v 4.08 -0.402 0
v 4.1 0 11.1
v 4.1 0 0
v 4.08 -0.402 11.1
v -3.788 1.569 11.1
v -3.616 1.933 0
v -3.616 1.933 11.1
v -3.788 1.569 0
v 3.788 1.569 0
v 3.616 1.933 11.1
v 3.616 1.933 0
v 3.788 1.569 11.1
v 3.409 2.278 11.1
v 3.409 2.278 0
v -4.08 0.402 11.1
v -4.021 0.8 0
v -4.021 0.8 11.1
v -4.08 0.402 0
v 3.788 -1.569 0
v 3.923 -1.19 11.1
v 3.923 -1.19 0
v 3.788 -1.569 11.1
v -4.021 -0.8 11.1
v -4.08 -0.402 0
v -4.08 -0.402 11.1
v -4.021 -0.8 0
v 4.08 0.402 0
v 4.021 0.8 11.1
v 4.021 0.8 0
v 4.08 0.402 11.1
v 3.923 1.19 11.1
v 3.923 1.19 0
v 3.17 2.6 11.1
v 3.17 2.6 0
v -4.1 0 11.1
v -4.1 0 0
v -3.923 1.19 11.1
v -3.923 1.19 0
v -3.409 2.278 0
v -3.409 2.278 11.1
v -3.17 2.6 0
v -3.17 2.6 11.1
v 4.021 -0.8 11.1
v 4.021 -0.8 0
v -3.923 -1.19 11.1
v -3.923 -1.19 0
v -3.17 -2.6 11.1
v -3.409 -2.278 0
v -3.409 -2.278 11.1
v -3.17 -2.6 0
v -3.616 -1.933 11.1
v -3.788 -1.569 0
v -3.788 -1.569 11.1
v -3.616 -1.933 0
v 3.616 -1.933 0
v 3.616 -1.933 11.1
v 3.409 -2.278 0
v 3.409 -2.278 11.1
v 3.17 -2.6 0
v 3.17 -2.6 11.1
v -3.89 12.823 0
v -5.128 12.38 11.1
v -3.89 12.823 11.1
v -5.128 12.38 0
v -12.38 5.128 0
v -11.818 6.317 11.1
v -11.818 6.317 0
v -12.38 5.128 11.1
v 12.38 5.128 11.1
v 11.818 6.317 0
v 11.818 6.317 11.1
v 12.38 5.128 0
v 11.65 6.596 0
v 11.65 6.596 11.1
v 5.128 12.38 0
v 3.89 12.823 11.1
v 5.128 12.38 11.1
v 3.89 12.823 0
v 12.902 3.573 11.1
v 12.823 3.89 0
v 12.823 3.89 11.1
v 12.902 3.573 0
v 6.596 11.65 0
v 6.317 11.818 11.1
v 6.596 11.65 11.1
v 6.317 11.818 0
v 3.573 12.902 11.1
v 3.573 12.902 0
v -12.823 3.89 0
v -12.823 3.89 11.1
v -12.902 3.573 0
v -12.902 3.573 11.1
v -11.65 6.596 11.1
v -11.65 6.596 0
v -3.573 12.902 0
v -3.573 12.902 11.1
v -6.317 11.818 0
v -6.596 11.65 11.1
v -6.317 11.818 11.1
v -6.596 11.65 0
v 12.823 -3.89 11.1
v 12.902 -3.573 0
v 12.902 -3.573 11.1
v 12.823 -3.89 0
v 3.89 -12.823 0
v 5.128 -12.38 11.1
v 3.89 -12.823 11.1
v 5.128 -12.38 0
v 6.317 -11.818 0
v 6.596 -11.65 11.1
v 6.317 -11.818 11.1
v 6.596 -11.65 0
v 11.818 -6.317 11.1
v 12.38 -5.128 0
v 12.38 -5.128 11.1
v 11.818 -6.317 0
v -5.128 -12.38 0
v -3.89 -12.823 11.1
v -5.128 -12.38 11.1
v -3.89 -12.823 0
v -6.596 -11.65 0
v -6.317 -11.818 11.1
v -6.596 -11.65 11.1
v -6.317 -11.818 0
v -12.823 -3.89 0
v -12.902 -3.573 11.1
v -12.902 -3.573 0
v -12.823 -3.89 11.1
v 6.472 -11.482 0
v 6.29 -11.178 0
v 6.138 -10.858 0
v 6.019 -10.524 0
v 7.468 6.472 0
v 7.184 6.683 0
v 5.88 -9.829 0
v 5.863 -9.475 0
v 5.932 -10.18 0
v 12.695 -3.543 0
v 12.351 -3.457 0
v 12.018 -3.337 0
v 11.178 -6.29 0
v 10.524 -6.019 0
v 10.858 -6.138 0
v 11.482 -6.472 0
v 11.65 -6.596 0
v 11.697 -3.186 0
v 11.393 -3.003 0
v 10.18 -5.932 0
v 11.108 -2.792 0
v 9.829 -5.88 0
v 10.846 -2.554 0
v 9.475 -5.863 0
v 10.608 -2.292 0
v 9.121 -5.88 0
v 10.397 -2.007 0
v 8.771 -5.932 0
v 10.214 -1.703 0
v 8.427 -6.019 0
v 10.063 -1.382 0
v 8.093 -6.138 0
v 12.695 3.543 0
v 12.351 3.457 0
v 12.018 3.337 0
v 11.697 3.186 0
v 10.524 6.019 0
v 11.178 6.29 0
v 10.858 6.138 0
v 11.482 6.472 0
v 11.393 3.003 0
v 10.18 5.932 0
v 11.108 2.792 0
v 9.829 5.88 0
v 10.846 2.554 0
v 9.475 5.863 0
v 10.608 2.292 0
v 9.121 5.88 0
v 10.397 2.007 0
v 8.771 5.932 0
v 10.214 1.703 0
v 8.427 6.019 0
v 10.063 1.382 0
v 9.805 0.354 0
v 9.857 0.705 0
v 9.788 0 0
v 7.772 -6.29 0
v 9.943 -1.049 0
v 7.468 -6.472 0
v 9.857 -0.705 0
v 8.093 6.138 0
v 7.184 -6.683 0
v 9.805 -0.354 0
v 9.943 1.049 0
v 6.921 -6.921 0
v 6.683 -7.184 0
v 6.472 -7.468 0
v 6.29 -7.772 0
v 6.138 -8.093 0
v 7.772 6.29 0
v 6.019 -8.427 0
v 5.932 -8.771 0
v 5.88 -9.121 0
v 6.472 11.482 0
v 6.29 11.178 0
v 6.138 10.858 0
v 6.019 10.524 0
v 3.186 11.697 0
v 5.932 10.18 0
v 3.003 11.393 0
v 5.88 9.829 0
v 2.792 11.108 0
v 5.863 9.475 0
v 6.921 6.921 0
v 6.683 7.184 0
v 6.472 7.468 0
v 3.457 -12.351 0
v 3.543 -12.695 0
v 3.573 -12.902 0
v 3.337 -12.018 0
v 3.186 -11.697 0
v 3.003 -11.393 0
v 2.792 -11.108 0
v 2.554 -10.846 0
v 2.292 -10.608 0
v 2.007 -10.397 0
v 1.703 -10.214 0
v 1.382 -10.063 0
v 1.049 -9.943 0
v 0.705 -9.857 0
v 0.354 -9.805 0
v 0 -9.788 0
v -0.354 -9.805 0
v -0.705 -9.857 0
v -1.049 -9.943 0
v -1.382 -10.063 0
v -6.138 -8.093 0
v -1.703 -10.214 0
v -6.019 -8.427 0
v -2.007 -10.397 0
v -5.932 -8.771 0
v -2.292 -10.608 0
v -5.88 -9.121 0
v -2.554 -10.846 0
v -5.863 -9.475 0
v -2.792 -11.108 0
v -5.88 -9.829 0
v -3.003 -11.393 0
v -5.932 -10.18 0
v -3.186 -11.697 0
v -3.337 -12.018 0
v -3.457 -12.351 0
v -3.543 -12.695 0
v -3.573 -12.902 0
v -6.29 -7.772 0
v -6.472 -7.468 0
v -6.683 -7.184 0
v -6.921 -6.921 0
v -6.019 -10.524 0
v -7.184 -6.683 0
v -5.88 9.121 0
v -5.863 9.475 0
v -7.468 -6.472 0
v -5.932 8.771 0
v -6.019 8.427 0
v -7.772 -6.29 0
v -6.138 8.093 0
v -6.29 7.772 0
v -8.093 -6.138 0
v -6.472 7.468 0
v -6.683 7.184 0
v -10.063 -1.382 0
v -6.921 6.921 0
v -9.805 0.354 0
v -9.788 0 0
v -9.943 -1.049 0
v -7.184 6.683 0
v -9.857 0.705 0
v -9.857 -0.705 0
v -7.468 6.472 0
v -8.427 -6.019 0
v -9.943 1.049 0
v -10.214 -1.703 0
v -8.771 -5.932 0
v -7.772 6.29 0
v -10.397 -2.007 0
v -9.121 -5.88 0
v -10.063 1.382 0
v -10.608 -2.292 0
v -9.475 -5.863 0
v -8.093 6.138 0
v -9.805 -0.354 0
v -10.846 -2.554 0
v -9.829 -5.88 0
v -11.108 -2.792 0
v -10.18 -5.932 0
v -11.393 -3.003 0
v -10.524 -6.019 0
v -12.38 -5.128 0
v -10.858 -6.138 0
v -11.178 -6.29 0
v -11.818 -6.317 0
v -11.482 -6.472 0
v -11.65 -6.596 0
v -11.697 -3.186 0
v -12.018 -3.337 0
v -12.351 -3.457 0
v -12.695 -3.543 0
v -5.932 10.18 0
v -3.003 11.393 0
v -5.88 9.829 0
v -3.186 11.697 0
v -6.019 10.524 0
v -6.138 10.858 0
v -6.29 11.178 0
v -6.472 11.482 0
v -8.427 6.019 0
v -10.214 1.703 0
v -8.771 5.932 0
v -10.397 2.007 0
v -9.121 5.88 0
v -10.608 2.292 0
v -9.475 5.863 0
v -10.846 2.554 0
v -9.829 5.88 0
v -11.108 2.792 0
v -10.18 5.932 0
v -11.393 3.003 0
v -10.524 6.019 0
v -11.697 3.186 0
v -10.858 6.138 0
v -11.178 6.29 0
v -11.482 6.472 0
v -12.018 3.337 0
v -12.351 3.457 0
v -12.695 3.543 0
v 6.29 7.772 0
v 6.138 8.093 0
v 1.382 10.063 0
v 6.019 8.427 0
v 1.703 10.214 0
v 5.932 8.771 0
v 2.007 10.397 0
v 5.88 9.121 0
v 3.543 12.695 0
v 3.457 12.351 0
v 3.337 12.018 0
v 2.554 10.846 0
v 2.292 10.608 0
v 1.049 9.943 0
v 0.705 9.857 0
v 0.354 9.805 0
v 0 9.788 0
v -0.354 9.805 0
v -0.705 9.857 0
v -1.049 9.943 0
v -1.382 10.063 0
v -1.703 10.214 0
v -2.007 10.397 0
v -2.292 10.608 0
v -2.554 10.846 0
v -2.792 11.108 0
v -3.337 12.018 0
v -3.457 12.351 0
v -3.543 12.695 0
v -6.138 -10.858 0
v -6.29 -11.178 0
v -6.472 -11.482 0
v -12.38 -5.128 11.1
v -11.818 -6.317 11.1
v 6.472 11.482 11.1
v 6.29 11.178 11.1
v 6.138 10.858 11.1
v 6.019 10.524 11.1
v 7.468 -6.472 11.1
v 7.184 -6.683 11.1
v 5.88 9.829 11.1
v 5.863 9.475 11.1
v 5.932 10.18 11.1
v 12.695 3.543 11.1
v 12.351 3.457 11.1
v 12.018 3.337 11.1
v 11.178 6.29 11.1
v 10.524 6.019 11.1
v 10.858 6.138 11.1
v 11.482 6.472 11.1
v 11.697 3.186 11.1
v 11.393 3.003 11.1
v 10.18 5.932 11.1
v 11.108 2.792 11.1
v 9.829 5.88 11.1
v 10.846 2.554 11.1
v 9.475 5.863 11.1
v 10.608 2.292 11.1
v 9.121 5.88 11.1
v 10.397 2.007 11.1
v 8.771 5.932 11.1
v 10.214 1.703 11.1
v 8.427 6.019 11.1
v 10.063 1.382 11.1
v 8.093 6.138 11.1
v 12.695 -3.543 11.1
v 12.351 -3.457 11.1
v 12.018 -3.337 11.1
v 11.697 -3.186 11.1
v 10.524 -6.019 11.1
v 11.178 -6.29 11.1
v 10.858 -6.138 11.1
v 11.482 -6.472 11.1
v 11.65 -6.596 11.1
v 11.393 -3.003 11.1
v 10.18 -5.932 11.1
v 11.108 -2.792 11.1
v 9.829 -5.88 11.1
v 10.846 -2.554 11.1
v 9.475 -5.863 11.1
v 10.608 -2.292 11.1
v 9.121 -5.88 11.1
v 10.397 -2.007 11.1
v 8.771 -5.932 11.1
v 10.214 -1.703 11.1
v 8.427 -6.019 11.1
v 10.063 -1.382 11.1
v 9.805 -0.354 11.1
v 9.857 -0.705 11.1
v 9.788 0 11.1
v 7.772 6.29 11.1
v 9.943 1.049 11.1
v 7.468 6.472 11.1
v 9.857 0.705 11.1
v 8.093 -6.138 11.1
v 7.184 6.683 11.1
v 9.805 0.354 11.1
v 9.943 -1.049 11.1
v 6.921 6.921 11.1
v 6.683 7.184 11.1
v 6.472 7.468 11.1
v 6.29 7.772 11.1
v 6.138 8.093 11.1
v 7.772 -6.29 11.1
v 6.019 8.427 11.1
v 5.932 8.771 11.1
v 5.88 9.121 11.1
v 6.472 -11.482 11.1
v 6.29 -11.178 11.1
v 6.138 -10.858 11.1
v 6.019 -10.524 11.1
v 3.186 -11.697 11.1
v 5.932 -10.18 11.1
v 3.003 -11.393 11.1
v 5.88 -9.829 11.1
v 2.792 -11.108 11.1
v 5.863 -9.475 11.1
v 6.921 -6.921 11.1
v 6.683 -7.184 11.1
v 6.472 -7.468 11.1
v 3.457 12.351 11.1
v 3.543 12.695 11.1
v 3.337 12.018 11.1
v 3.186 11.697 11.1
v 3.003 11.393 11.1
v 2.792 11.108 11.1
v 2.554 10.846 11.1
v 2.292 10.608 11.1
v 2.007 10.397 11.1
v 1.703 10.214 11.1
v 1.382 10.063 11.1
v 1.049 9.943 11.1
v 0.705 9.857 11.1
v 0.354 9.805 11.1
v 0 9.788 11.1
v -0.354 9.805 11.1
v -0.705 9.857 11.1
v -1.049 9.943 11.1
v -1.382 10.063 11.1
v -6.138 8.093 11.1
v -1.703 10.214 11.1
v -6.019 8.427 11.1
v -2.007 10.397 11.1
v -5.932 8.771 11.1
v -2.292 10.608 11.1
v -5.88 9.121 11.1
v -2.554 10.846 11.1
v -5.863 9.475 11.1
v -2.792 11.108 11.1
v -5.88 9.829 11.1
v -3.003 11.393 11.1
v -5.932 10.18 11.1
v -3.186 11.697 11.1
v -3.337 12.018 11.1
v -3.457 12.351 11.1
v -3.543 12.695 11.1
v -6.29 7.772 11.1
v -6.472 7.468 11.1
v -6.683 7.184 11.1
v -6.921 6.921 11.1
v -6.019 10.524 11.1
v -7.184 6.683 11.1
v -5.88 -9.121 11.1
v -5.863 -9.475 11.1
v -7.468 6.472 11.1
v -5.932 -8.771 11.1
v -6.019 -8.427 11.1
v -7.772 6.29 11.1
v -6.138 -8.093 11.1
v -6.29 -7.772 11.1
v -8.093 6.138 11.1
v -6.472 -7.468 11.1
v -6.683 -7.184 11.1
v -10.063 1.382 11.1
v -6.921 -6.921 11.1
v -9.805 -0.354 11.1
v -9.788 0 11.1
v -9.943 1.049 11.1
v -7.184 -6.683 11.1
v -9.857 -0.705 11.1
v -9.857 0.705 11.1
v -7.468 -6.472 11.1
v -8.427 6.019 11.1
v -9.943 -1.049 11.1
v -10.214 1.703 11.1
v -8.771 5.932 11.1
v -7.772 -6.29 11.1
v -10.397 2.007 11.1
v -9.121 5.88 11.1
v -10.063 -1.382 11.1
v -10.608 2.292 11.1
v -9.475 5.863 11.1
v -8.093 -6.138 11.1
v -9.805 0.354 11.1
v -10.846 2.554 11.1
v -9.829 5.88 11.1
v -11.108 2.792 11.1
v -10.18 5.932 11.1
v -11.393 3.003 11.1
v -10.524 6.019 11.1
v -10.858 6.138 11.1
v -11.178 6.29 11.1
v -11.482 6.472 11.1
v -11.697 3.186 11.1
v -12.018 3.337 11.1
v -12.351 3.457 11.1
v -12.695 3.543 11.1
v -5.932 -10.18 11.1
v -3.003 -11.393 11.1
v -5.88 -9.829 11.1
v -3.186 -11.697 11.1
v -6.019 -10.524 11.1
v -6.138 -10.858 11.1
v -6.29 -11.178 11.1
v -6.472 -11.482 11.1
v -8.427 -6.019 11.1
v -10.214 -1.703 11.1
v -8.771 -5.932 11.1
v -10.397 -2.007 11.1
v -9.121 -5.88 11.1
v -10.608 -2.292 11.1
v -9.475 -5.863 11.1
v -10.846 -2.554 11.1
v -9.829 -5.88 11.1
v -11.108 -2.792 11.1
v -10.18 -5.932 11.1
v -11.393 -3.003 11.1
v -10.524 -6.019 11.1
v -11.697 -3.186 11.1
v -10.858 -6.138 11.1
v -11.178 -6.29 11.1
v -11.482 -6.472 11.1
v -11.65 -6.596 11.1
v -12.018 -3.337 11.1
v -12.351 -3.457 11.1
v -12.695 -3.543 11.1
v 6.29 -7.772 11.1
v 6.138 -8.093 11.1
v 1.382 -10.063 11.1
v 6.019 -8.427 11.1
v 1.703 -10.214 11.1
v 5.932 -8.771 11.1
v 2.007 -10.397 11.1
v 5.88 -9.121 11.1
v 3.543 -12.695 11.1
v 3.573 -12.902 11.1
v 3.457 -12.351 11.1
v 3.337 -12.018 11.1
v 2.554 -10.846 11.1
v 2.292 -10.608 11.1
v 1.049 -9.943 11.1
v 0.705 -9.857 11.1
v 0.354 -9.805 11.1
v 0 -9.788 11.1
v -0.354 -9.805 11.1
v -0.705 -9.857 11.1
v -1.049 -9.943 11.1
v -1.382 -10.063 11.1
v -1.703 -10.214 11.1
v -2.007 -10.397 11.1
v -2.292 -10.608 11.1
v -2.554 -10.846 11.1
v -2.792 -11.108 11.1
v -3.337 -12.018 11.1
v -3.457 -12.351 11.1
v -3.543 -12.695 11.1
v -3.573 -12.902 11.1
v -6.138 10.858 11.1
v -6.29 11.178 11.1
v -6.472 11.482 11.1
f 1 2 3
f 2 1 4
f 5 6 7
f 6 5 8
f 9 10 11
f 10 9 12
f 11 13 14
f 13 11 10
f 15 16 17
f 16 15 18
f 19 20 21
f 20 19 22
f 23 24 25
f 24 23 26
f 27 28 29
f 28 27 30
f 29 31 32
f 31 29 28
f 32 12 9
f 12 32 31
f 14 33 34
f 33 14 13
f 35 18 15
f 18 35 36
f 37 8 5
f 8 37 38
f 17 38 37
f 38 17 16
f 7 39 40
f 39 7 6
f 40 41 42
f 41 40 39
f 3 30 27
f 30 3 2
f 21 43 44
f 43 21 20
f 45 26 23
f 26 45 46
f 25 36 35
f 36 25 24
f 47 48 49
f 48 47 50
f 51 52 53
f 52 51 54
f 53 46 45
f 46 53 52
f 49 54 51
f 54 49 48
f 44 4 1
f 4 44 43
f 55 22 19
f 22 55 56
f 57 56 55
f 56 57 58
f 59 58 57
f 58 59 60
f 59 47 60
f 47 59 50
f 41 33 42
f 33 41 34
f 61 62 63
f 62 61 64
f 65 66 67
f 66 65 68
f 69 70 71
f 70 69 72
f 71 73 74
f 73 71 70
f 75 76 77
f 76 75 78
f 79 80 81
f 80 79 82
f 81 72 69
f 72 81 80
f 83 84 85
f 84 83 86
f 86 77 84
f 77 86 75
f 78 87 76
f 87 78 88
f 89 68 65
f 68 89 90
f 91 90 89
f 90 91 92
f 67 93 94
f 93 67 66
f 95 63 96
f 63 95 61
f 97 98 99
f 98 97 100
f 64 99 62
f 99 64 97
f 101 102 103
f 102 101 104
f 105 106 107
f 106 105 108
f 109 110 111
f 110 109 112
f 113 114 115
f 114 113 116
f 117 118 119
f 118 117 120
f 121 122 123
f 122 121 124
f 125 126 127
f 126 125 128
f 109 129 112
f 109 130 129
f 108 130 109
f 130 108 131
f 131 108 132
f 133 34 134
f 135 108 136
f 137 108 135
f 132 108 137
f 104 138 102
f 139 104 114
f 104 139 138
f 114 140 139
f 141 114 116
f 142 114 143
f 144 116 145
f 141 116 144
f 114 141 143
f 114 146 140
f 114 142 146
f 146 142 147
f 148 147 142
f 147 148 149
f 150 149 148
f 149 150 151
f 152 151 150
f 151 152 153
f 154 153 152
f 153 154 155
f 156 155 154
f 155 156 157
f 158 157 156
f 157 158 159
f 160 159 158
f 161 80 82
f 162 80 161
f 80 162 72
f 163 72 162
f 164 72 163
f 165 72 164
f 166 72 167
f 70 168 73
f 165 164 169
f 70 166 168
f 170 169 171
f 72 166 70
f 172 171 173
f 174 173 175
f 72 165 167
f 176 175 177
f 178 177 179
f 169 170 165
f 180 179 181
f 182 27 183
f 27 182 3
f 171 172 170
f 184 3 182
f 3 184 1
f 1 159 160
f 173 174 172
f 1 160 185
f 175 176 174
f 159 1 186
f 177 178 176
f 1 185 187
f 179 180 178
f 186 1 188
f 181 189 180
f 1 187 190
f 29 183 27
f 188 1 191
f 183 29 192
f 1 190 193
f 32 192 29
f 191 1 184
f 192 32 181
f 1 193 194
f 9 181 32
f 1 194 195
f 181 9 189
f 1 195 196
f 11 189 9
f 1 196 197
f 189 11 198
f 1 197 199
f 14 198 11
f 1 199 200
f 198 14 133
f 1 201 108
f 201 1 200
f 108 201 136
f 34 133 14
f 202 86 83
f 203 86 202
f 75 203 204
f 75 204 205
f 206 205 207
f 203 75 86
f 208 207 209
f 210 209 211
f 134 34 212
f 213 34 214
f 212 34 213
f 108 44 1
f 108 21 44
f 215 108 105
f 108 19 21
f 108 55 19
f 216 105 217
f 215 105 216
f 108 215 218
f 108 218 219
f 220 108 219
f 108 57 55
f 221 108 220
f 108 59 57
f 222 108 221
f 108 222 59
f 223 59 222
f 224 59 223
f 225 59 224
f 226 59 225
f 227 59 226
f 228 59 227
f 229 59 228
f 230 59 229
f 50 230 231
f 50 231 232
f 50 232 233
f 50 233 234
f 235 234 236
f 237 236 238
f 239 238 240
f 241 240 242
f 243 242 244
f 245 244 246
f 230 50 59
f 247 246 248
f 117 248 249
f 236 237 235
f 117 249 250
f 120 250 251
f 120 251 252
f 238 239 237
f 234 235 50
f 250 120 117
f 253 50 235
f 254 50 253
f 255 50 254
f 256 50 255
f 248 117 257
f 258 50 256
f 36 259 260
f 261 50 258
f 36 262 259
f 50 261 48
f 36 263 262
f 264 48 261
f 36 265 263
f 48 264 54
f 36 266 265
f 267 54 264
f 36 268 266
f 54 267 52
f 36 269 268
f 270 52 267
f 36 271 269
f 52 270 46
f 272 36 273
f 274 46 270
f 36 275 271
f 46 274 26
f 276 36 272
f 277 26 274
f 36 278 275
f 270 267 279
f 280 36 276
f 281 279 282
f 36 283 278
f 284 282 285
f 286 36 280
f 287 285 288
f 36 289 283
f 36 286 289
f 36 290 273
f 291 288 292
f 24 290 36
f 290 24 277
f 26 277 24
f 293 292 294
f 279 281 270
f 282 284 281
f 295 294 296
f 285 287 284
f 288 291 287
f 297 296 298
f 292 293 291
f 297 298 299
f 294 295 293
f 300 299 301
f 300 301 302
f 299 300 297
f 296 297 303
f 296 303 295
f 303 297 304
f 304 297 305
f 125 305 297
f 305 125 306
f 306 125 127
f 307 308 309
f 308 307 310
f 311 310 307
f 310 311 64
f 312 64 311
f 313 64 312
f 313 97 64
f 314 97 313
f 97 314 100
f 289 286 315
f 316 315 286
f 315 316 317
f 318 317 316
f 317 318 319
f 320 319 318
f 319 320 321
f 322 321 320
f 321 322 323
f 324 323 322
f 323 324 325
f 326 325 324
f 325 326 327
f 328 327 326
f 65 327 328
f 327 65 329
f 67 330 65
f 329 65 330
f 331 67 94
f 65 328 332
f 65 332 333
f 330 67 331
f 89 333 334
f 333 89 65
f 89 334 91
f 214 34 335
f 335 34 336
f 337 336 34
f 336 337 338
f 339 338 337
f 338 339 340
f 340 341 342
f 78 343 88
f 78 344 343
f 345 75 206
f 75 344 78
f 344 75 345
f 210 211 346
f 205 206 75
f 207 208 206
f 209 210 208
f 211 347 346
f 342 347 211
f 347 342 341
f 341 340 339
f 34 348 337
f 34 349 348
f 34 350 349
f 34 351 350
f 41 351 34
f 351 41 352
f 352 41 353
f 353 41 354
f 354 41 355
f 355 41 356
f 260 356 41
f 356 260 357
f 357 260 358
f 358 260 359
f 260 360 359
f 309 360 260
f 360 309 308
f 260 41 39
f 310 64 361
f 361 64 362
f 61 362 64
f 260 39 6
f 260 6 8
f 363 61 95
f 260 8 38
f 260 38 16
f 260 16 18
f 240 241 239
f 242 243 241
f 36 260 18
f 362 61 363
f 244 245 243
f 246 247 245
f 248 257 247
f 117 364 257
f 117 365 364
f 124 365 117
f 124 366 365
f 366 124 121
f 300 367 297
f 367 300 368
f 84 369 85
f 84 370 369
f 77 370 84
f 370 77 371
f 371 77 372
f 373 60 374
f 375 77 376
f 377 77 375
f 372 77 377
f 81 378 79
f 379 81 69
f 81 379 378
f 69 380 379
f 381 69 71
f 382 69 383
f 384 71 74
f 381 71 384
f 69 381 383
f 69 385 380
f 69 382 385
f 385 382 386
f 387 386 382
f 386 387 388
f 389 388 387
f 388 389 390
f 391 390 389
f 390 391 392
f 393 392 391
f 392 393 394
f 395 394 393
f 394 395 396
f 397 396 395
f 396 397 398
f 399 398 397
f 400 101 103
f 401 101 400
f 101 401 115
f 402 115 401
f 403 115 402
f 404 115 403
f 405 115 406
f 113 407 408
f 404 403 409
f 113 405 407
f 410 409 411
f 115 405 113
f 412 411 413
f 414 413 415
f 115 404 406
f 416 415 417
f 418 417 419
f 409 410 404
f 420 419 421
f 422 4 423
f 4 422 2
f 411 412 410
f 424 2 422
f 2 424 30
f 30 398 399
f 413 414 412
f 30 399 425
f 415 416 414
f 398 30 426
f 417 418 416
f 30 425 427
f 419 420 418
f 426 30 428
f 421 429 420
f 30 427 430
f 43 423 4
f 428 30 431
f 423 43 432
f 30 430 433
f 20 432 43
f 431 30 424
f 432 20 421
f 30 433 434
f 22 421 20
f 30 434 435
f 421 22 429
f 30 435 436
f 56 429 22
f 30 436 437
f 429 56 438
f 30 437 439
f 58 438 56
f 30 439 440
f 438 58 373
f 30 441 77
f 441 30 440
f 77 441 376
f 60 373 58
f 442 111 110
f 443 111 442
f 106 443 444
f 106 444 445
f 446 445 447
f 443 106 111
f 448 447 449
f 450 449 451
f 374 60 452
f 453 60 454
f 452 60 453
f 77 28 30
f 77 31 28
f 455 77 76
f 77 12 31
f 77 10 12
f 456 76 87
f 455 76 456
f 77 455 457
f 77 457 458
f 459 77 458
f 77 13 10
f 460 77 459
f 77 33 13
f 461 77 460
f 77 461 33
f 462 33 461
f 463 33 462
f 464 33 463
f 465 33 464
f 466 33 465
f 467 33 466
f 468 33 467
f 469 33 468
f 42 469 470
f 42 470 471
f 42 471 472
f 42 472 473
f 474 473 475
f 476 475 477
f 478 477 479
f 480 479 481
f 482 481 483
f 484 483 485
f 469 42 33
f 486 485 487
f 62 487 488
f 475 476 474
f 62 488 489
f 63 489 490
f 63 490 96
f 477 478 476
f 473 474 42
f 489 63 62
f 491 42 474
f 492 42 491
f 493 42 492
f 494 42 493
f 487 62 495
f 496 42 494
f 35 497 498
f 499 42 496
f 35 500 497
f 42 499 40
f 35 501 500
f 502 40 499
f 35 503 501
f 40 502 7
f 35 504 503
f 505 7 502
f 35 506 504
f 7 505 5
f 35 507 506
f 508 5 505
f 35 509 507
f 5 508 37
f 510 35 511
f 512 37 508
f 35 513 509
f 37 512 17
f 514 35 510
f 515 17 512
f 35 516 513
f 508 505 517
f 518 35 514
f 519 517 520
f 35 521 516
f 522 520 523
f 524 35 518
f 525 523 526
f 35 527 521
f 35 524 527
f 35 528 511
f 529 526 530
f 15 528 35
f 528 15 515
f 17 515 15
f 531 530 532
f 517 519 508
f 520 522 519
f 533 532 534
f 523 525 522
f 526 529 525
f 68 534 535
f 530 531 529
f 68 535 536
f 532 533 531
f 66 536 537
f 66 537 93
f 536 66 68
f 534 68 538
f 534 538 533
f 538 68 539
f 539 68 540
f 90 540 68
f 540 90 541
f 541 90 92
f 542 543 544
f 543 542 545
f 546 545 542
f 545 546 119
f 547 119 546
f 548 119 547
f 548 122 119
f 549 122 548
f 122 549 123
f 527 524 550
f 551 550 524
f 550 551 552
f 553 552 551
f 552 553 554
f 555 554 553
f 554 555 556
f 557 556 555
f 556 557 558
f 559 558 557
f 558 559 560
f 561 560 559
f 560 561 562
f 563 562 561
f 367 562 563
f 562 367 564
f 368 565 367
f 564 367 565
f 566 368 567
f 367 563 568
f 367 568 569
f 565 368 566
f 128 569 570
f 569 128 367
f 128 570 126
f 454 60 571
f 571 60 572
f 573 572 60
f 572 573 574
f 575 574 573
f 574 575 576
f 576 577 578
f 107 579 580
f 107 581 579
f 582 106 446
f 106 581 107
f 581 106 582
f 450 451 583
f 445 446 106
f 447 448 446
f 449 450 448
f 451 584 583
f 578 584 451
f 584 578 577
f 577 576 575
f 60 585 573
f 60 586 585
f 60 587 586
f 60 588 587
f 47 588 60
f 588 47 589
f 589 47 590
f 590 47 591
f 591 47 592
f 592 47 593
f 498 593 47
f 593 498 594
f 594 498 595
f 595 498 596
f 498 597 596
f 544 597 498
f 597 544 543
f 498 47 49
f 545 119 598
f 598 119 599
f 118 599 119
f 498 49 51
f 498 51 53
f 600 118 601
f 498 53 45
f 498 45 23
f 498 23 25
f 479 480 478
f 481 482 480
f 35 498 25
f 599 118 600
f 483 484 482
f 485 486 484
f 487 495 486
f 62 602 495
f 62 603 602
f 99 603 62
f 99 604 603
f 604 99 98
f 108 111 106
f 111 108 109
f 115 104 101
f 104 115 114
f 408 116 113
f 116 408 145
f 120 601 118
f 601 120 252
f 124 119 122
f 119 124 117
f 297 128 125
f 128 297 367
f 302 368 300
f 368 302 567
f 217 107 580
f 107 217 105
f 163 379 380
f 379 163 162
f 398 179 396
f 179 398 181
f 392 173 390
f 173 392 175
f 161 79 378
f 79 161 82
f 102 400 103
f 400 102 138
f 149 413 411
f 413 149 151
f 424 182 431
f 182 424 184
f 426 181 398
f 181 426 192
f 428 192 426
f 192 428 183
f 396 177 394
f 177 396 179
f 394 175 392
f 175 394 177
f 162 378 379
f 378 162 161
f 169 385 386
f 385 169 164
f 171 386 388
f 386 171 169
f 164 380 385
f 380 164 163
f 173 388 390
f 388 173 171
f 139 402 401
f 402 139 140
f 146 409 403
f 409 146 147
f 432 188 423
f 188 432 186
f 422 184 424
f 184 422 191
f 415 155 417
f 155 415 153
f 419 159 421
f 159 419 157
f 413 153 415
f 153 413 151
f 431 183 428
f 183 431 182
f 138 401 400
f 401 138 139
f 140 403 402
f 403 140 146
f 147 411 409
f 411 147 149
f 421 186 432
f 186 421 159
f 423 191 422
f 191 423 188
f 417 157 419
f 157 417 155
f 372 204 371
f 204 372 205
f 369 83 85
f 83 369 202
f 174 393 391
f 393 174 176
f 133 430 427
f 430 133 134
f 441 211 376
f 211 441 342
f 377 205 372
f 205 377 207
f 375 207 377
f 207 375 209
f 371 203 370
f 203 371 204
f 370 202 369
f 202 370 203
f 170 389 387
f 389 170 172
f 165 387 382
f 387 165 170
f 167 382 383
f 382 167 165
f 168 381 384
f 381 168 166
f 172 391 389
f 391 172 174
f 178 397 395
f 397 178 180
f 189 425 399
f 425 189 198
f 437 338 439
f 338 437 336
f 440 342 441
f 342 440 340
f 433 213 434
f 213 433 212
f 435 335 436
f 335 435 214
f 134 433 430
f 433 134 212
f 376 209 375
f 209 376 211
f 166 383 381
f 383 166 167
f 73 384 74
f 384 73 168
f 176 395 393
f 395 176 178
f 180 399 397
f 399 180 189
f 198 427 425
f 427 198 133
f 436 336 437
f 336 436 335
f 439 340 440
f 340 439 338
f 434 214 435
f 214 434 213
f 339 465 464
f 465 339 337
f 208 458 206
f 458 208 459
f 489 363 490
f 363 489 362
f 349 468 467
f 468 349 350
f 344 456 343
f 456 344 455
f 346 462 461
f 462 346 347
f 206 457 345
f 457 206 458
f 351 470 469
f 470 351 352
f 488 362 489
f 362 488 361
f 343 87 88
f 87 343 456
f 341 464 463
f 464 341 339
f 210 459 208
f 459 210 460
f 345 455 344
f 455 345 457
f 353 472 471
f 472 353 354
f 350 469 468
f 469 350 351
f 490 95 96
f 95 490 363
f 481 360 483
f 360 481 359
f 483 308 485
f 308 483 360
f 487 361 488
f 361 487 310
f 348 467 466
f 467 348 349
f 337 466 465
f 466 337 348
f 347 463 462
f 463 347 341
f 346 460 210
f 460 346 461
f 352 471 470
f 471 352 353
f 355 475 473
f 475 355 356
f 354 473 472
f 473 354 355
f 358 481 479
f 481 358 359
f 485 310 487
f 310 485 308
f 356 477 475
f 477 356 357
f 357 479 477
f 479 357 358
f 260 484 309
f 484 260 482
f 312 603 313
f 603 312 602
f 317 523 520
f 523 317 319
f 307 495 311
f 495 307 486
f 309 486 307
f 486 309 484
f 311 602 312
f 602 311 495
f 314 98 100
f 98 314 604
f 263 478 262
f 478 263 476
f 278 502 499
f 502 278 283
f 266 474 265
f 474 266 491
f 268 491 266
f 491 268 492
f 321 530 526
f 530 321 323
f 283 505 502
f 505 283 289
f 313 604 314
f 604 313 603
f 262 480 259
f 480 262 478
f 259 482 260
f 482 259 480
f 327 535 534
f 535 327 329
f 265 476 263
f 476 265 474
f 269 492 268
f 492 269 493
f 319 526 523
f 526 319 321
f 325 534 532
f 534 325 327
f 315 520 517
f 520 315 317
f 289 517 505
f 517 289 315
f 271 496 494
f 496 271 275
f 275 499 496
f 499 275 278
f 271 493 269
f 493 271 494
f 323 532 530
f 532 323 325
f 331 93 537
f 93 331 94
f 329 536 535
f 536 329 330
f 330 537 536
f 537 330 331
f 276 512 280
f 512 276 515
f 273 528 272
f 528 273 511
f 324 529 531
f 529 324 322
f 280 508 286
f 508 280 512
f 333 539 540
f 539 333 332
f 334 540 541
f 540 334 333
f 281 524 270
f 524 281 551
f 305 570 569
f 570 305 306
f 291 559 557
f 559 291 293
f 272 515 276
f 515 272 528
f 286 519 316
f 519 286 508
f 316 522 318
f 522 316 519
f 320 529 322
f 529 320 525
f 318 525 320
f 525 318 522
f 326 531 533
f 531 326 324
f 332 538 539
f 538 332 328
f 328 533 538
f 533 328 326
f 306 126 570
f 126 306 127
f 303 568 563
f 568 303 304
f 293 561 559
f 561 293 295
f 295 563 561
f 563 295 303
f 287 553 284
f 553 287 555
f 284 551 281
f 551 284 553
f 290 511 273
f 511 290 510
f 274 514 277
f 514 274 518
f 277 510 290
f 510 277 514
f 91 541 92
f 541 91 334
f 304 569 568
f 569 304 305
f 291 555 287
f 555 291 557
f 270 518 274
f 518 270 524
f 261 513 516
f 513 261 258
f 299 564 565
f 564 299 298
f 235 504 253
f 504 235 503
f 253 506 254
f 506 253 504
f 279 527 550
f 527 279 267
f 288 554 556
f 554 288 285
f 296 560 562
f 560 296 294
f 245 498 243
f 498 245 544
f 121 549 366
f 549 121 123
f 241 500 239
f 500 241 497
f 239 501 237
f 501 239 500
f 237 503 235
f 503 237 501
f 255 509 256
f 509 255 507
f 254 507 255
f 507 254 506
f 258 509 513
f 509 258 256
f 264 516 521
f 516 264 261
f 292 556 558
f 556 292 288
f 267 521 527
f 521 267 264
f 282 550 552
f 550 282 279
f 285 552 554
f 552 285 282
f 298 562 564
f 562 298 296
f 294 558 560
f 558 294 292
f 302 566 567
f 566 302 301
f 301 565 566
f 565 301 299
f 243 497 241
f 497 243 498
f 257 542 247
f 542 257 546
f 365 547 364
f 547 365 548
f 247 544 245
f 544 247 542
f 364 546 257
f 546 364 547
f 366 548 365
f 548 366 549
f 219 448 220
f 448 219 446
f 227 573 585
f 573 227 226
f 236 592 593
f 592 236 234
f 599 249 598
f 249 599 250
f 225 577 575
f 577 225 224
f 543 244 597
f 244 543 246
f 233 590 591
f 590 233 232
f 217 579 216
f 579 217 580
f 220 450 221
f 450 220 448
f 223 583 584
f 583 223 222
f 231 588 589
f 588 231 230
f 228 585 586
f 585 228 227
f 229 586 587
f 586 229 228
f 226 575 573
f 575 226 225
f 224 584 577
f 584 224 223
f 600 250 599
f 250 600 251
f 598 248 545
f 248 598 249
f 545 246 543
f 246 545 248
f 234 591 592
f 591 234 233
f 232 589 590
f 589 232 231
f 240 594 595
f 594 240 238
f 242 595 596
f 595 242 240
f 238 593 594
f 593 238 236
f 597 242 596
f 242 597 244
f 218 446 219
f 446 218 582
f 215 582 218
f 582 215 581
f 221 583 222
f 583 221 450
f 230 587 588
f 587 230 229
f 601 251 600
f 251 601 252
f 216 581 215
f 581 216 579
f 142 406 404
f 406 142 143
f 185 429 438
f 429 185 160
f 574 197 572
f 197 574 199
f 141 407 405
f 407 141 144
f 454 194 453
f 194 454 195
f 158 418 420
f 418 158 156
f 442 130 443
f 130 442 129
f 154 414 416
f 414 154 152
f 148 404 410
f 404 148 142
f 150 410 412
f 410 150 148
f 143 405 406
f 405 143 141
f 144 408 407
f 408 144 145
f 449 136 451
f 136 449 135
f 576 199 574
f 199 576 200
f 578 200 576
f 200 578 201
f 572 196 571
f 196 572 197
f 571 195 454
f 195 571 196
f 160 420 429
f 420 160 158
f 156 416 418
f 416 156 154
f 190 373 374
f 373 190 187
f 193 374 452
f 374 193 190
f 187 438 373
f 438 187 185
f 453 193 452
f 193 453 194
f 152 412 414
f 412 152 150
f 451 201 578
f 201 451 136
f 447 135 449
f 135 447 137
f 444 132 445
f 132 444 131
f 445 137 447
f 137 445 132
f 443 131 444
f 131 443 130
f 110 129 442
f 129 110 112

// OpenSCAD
// Generated by SolidPython 1.1.3 on 2025-07-09 20:08:44
$fn = 64;


difference() {
	cylinder(h = 11.1000000000, r = 13.4000000000);
	translate(v = [0, 0, -0.0100000000]) {
		translate(v = [13.4, 0.0, 0]) {
			cylinder(h = 11.1200000000, r = 3.6121676948);
		}
	}
	translate(v = [0, 0, -0.0100000000]) {
		translate(v = [9.475230867899738, 9.475230867899738, 0]) {
			cylinder(h = 11.1200000000, r = 3.6121676948);
		}
	}
	translate(v = [0, 0, -0.0100000000]) {
		translate(v = [8.205133554287267e-16, 13.4, 0]) {
			cylinder(h = 11.1200000000, r = 3.6121676948);
		}
	}
	translate(v = [0, 0, -0.0100000000]) {
		translate(v = [-9.475230867899736, 9.475230867899738, 0]) {
			cylinder(h = 11.1200000000, r = 3.6121676948);
		}
	}
	translate(v = [0, 0, -0.0100000000]) {
		translate(v = [-13.4, 1.6410267108574533e-15, 0]) {
			cylinder(h = 11.1200000000, r = 3.6121676948);
		}
	}
	translate(v = [0, 0, -0.0100000000]) {
		translate(v = [-9.47523086789974, -9.475230867899736, 0]) {
			cylinder(h = 11.1200000000, r = 3.6121676948);
		}
	}
	translate(v = [0, 0, -0.0100000000]) {
		translate(v = [-2.46154006628618e-15, -13.4, 0]) {
			cylinder(h = 11.1200000000, r = 3.6121676948);
		}
	}
	translate(v = [0, 0, -0.0100000000]) {
		translate(v = [9.475230867899734, -9.47523086789974, 0]) {
			cylinder(h = 11.1200000000, r = 3.6121676948);
		}
	}
	translate(v = [0, 0, -0.0100000000]) {
		intersection() {
			cylinder(h = 11.1200000000, r = 4.1000000000);
			translate(v = [0, 0, 5.5600000000]) {
				cube(center = true, size = [8.2000000000, 5.2000000000, 11.1200000000]);
			}
		}
	}
}
/***********************************************
*********      SolidPython code:      **********
************************************************
 
import numpy as np
from solid import *
from solid.utils import *

z = 0.01
z2 = z * 2
m = 2

t = translate
tx = lambda e, x: t([x, 0, 0])(e)
ty = lambda e, x: t([0, x, 0])(e)
tz = lambda e, x: t([0, 0, x])(e)
txy = lambda e, x, y: t([x, y, 0])(e)
r = rotate
rx = lambda e, x: r([x, 0, 0])(e)
ry = lambda e, x: r([0, x, 0])(e)
rz = lambda e, x: r([0, 0, x])(e)
sc = scale
sx = lambda e, x: sc([x, 1, 1])(e)
sy = lambda e, x: sc([1, x, 1])(e)
sz = lambda e, x: sc([1, 1, x])(e)
cos = np.cos
sin = np.sin
pi = np.pi
save = lambda m, n: scad_render_to_file(m, n, file_header="$fn = 64;")

# Parameters
ro_adapter = 26.8 / 2
ri_adapter = 22.2 / 2
h_adapter = 11.1
circ_adapter = 2 * pi * ro_adapter

count_adapter_bumps = 8
gap_adapter_bumps = 3.3
r_adapter_bump = (circ_adapter / count_adapter_bumps - gap_adapter_bumps) / 2

r_hole_adapter = 8.2 / 2
h_hole_adapter = 5.2
d_hole_adapter = 11.1


def create_adapter():
    adapter = cylinder(r=ro_adapter, h=h_adapter)

    bumps = []
    for i in range(count_adapter_bumps):
        angle = i * (2 * pi / count_adapter_bumps)
        x = ro_adapter * cos(angle)
        y = ro_adapter * sin(angle)
        bump = txy(cylinder(r=r_adapter_bump, h=h_adapter + z2), x, y)
        bump = tz(bump, -z)
        bumps.append(bump)

    adapter -= bumps

    hole = cylinder(r=r_hole_adapter, h=d_hole_adapter + z2)
    hole *= tz(
        cube([r_hole_adapter * 2, h_hole_adapter, d_hole_adapter + z2], center=True),
        d_hole_adapter / 2 + z,
    )
    hole = tz(hole, -z)

    adapter -= hole

    return adapter


save(create_adapter(), "aqara-roller-shade.adapter.scad")
 
 
************************************************/
